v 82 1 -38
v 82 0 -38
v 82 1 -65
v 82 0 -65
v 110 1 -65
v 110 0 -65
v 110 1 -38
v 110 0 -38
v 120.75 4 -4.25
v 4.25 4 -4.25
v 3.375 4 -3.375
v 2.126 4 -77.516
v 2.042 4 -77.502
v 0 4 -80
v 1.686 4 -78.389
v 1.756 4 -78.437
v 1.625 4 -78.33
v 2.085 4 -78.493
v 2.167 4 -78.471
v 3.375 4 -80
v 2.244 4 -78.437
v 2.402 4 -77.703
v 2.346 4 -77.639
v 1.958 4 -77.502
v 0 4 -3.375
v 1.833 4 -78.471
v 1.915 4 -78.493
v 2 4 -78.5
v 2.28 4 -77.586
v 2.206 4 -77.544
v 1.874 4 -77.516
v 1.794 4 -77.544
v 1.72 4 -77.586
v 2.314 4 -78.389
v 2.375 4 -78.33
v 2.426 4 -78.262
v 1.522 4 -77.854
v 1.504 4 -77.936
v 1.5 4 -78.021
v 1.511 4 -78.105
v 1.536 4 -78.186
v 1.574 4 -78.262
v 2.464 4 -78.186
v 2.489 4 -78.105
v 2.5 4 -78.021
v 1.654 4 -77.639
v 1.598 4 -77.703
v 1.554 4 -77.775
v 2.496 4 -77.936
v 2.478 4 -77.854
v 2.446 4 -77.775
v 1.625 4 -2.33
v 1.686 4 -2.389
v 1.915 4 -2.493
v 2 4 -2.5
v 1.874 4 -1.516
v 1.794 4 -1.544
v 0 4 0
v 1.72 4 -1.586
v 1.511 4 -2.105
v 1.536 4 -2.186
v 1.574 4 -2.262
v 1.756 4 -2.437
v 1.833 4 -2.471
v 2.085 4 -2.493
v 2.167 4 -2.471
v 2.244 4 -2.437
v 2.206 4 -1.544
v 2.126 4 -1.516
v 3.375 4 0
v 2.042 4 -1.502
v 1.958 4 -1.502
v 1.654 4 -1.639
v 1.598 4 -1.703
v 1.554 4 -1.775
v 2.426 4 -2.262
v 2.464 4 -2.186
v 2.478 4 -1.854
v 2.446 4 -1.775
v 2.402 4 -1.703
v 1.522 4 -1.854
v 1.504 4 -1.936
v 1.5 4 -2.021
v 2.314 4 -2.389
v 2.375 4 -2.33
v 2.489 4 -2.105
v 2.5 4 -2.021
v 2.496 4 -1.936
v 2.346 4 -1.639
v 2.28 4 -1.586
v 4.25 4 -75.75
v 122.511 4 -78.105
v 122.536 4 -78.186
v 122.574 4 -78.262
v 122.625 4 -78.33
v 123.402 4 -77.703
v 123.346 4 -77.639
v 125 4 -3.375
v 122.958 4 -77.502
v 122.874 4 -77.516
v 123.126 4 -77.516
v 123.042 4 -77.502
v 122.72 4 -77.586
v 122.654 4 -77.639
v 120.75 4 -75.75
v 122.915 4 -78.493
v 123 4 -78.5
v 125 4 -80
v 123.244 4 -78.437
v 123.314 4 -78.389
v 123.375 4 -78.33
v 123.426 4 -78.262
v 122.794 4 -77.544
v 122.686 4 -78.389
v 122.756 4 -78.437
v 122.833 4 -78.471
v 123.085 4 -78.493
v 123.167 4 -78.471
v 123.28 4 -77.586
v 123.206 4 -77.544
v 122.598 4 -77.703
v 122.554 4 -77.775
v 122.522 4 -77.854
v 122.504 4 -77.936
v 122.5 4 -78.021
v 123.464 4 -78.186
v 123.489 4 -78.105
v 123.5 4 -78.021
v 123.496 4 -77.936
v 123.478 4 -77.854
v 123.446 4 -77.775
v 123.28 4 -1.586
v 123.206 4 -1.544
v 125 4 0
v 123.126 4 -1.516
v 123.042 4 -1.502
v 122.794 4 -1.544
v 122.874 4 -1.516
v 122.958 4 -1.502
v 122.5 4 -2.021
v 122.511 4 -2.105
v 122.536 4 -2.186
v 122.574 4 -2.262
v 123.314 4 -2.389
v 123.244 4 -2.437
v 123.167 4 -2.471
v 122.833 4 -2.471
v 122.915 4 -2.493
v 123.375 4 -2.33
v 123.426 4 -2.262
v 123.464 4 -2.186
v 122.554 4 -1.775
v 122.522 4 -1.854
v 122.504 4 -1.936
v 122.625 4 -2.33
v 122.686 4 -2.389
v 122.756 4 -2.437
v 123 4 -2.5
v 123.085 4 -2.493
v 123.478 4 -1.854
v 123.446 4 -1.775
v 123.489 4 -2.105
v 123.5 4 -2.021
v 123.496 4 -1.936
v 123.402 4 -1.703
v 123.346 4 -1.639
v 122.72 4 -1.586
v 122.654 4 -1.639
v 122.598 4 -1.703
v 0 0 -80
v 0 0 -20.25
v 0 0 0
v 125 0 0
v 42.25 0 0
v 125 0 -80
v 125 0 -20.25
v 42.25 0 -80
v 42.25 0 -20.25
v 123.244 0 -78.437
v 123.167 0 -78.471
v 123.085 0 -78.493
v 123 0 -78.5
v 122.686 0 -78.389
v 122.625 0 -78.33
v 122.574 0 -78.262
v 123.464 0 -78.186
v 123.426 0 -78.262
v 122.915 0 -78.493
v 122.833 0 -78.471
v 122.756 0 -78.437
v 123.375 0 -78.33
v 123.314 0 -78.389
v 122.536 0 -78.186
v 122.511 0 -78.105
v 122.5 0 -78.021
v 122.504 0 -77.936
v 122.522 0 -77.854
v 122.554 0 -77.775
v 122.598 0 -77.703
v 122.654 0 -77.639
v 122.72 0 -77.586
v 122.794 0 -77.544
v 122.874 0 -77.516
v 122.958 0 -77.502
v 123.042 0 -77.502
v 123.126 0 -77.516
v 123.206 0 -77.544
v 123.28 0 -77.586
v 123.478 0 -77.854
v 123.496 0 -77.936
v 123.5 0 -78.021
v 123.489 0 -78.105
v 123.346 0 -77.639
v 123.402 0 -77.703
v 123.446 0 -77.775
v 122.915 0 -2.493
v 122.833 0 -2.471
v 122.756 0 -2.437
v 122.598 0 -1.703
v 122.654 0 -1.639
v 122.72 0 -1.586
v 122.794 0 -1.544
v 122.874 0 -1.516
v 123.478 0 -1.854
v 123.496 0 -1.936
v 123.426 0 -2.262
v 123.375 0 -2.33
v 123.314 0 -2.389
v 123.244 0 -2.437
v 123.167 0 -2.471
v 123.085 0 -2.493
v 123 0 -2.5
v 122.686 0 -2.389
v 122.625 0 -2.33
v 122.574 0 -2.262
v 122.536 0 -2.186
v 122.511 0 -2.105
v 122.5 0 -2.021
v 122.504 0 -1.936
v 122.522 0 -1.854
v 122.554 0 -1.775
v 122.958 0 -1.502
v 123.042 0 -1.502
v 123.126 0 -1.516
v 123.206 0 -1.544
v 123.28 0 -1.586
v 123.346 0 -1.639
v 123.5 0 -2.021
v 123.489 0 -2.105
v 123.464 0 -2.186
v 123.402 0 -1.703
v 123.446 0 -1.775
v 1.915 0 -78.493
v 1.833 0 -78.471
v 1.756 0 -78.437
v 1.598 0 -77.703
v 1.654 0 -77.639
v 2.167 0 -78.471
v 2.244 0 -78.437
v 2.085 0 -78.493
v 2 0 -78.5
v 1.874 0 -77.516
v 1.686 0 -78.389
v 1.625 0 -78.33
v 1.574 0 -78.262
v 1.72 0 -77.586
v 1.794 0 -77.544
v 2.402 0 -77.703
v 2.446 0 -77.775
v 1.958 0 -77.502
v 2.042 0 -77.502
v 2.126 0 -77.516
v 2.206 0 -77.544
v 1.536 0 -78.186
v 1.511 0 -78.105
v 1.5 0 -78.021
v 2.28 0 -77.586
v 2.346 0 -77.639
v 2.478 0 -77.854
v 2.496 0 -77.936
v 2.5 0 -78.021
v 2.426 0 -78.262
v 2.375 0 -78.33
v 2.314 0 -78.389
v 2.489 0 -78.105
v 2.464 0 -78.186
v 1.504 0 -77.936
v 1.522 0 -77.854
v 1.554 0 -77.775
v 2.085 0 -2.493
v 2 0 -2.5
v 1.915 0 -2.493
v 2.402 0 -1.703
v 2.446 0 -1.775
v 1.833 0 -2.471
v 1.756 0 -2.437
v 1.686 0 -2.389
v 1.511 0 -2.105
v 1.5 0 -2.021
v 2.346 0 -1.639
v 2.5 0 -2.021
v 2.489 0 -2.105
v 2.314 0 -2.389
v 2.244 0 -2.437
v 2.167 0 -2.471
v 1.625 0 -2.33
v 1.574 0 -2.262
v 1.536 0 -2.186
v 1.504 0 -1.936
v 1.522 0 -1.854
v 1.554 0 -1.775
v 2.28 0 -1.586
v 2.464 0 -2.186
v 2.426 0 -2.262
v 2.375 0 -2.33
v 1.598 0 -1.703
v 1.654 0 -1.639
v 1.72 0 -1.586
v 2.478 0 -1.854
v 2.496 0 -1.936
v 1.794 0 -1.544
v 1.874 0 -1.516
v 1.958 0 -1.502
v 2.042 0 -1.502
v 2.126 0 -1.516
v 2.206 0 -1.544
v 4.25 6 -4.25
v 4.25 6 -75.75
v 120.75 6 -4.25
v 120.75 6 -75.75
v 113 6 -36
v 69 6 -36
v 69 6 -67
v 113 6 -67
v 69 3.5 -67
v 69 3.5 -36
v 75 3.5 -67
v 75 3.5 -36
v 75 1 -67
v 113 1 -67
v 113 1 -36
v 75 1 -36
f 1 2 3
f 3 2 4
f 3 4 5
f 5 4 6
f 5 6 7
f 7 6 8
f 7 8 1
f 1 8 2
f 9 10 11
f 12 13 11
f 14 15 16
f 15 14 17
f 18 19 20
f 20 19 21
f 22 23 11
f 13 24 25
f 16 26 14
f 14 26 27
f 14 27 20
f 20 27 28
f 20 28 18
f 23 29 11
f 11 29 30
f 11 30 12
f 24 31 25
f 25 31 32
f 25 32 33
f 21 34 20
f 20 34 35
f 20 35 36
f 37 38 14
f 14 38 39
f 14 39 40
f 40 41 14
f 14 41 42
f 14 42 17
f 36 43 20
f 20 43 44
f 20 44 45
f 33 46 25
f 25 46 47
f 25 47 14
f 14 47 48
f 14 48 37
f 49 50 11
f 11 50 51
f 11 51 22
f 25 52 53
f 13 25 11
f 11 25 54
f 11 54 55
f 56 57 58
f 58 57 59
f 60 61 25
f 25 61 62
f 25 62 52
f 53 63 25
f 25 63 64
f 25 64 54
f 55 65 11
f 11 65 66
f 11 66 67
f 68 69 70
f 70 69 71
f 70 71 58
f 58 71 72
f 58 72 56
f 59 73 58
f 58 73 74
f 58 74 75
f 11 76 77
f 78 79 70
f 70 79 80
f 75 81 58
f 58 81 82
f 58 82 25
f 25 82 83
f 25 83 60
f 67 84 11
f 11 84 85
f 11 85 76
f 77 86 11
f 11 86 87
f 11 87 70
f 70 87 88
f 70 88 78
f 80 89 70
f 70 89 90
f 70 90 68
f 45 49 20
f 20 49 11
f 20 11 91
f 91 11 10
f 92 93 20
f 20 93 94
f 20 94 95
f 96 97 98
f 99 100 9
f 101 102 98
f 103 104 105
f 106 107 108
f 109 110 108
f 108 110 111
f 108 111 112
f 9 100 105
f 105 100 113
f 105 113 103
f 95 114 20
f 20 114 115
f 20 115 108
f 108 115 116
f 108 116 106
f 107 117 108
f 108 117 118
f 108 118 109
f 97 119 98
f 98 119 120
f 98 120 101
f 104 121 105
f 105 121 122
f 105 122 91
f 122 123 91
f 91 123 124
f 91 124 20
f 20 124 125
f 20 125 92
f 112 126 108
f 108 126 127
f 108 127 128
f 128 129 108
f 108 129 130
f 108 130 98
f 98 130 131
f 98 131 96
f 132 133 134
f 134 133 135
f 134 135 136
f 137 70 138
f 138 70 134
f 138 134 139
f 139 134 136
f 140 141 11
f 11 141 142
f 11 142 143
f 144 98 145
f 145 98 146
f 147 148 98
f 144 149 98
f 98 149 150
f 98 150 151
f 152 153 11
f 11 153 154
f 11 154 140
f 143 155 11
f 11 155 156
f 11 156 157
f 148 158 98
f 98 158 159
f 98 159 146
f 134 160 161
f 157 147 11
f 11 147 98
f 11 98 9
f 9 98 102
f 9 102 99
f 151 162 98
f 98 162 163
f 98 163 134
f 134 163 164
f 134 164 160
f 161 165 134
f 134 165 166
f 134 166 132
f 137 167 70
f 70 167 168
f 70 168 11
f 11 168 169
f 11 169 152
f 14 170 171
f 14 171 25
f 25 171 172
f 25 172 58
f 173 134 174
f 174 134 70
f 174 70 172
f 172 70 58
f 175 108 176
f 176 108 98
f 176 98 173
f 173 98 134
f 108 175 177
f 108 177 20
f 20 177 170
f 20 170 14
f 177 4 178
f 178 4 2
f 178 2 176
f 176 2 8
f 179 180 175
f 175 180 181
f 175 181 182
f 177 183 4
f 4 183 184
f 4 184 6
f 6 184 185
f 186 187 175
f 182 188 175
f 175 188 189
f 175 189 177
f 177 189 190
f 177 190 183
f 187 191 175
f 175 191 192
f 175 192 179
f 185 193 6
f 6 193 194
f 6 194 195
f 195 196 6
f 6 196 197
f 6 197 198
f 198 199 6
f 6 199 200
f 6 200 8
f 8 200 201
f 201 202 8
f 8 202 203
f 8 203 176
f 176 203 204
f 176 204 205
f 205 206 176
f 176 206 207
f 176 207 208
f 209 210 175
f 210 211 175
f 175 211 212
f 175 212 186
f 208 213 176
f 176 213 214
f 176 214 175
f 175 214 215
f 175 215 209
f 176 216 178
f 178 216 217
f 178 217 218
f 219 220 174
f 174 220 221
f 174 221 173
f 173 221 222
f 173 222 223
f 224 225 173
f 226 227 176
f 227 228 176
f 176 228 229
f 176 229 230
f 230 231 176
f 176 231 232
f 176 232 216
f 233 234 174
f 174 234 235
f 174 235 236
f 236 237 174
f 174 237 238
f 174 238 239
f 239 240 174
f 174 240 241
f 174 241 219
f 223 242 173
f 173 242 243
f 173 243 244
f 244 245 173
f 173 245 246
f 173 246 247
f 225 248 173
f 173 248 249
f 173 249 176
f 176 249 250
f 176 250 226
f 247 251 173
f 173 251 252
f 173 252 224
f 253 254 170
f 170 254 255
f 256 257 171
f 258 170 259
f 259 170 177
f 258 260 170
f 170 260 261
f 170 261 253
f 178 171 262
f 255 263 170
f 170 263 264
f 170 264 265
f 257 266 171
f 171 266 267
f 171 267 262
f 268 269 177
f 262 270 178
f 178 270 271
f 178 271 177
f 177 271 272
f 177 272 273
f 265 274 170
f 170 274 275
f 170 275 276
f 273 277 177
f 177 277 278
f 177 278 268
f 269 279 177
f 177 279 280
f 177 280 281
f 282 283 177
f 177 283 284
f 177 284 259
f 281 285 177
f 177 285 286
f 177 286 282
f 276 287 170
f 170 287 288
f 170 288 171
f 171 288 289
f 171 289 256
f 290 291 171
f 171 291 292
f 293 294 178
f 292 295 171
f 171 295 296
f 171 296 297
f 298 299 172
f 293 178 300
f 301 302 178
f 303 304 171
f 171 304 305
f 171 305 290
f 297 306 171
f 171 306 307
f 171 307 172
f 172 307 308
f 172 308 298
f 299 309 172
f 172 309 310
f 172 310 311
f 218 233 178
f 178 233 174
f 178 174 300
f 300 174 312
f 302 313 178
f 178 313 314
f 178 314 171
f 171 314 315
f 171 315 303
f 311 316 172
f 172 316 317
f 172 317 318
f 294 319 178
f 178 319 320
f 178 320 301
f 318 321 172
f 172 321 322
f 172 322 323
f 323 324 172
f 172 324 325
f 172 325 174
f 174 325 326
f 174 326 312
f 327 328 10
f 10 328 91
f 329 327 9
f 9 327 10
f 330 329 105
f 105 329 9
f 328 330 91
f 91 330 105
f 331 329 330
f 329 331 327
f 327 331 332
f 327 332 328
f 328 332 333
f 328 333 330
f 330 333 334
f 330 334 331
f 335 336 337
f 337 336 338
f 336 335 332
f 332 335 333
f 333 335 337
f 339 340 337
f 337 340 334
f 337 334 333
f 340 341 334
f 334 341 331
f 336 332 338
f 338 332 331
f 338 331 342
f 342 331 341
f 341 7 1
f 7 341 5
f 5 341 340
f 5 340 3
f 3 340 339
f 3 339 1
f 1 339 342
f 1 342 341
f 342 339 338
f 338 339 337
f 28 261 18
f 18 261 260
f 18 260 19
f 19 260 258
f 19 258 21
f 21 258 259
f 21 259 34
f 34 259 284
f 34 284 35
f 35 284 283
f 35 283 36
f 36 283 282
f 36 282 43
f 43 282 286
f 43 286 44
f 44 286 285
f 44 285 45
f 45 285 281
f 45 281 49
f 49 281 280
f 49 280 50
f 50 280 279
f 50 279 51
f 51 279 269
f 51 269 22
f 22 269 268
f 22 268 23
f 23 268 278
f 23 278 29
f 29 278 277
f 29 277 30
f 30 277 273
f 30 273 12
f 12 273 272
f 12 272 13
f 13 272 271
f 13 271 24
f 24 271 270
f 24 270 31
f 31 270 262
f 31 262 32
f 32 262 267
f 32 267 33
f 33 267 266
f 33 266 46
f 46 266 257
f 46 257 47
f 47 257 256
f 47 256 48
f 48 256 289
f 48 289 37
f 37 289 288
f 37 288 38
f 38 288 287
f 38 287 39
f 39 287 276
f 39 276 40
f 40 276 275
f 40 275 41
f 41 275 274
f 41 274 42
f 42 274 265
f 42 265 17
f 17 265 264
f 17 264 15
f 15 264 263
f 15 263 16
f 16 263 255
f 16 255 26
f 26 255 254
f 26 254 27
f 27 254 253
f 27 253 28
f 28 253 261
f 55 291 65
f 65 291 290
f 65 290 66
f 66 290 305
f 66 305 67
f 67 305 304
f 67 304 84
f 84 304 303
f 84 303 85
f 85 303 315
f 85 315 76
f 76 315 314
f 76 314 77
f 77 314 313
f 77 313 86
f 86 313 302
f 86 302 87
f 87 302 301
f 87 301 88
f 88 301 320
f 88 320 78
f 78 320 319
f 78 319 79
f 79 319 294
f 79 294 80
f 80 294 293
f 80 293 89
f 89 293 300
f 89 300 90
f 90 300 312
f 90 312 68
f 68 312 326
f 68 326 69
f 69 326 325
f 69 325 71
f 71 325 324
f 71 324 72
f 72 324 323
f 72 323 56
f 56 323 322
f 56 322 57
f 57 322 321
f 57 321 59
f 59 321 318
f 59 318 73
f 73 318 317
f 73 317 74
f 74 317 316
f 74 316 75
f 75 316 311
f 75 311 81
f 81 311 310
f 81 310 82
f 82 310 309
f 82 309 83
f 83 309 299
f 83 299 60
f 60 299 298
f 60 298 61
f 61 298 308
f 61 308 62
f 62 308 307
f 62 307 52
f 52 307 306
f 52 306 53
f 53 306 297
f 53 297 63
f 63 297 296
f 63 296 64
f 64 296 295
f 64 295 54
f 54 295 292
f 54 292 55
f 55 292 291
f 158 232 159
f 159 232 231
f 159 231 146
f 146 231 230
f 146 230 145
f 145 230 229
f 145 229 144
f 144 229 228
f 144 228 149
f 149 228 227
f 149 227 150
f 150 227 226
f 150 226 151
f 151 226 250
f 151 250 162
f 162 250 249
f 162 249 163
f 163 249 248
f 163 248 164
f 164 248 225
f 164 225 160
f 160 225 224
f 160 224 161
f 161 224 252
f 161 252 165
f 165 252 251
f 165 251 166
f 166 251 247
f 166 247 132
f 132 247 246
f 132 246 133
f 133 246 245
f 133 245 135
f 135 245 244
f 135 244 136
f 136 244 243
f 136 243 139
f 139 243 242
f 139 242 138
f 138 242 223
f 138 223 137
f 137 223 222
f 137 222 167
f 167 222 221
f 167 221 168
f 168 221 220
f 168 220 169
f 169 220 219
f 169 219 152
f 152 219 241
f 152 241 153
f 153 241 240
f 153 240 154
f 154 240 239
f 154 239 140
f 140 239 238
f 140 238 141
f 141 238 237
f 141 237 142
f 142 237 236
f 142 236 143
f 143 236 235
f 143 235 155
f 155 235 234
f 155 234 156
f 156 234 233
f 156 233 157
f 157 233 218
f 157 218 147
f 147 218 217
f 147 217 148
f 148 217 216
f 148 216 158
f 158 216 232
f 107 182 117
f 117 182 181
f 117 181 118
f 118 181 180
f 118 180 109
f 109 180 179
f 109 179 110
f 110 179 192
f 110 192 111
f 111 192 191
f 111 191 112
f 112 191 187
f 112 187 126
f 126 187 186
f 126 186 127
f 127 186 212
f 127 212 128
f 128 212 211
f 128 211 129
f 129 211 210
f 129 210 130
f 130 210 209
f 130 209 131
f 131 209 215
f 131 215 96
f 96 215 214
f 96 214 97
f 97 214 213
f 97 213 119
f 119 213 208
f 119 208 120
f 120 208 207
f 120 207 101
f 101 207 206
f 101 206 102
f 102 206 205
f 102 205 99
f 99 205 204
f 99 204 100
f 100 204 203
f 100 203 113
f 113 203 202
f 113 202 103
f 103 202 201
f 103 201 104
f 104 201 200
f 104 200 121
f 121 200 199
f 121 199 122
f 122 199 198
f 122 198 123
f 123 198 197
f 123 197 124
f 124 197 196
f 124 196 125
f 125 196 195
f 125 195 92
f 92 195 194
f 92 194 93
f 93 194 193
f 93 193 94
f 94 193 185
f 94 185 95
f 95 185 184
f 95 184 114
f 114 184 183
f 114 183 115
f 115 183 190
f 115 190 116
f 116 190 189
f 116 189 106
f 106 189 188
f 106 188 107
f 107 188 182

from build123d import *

# Parameters (mm, degrees)
BASE_SKETCH_W         = 125
BASE_SKETCH_H         = 80
BASE_EXTRUDE_DEPTH    = 4
INSET_SKETCH_W        = 116.5
INSET_SKETCH_H        = 71.5
INSET_EXTRUDE_DEPTH   = 2
INNER_HOLE_SKETCH_W   = 28
INNER_HOLE_SKETCH_H   = 27
INNER_HOLE_CUT_DEPTH  = 12
OUTER_HOLE_SKETCH_W   = 44
OUTER_HOLE_SKETCH_H   = 31
OUTTER_HOLE_CUT_DEPTH = 2.5
MIDDLE_HOLE_SKETCH_W  = 38
MIDDLE_HOLE_SKETCH_H  = 31
MIDDLE_HOLE_CUT_DEPTH = 5
F_1_0MM_DOWEL_HOLE1_D = 1


with BuildPart() as part:
    # base sketch → base extrude (new body)
    with BuildSketch(Plane(origin=(0, 0, 0), x_dir=(1, 0, 0), z_dir=(0, 1, 0))):
        with Locations((62.5, 40)):
            Rectangle(BASE_SKETCH_W, BASE_SKETCH_H)
    extrude(amount=BASE_EXTRUDE_DEPTH)

    # inset sketch → inset extrude (add)
    with BuildSketch(Plane(origin=(0, 4, 0), x_dir=(1, 0, 0), z_dir=(0, 1, 0))):
        with Locations((62.5, 40)):
            Rectangle(INSET_SKETCH_W, INSET_SKETCH_H)
    extrude(amount=INSET_EXTRUDE_DEPTH)

    # inner hole sketch → inner hole cut (cut)
    with BuildSketch(Plane(origin=(0, 6, 0), x_dir=(1, 0, 0), z_dir=(0, 1, 0))):
        with Locations((96, 51.5)):
            Rectangle(INNER_HOLE_SKETCH_W, INNER_HOLE_SKETCH_H)
    extrude(amount=-INNER_HOLE_CUT_DEPTH, mode=Mode.SUBTRACT)

    # outer hole sketch → outter hole cut (cut)
    with BuildSketch(Plane(origin=(0, 6, 0), x_dir=(1, 0, 0), z_dir=(0, 1, 0))):
        with Locations((91, 51.5)):
            Rectangle(OUTER_HOLE_SKETCH_W, OUTER_HOLE_SKETCH_H)
    extrude(amount=-OUTTER_HOLE_CUT_DEPTH, mode=Mode.SUBTRACT)

    # middle hole sketch → middle hole cut (cut)
    with BuildSketch(Plane(origin=(0, 6, 0), x_dir=(1, 0, 0), z_dir=(0, 1, 0))):
        with Locations((94, 51.5)):
            Rectangle(MIDDLE_HOLE_SKETCH_W, MIDDLE_HOLE_SKETCH_H)
    extrude(amount=-MIDDLE_HOLE_CUT_DEPTH, mode=Mode.SUBTRACT)

    # Ø1.0mm Dowel Hole1 (through all)
    with Locations(Plane(origin=(123, 0, -78), x_dir=(0, 0, -1), z_dir=(0, -1, 0))):
        with Locations((0, 0), (-76, 0), (-76, -121), (0, -121)):
            Hole(F_1_0MM_DOWEL_HOLE1_D / 2)


solid = part.part
